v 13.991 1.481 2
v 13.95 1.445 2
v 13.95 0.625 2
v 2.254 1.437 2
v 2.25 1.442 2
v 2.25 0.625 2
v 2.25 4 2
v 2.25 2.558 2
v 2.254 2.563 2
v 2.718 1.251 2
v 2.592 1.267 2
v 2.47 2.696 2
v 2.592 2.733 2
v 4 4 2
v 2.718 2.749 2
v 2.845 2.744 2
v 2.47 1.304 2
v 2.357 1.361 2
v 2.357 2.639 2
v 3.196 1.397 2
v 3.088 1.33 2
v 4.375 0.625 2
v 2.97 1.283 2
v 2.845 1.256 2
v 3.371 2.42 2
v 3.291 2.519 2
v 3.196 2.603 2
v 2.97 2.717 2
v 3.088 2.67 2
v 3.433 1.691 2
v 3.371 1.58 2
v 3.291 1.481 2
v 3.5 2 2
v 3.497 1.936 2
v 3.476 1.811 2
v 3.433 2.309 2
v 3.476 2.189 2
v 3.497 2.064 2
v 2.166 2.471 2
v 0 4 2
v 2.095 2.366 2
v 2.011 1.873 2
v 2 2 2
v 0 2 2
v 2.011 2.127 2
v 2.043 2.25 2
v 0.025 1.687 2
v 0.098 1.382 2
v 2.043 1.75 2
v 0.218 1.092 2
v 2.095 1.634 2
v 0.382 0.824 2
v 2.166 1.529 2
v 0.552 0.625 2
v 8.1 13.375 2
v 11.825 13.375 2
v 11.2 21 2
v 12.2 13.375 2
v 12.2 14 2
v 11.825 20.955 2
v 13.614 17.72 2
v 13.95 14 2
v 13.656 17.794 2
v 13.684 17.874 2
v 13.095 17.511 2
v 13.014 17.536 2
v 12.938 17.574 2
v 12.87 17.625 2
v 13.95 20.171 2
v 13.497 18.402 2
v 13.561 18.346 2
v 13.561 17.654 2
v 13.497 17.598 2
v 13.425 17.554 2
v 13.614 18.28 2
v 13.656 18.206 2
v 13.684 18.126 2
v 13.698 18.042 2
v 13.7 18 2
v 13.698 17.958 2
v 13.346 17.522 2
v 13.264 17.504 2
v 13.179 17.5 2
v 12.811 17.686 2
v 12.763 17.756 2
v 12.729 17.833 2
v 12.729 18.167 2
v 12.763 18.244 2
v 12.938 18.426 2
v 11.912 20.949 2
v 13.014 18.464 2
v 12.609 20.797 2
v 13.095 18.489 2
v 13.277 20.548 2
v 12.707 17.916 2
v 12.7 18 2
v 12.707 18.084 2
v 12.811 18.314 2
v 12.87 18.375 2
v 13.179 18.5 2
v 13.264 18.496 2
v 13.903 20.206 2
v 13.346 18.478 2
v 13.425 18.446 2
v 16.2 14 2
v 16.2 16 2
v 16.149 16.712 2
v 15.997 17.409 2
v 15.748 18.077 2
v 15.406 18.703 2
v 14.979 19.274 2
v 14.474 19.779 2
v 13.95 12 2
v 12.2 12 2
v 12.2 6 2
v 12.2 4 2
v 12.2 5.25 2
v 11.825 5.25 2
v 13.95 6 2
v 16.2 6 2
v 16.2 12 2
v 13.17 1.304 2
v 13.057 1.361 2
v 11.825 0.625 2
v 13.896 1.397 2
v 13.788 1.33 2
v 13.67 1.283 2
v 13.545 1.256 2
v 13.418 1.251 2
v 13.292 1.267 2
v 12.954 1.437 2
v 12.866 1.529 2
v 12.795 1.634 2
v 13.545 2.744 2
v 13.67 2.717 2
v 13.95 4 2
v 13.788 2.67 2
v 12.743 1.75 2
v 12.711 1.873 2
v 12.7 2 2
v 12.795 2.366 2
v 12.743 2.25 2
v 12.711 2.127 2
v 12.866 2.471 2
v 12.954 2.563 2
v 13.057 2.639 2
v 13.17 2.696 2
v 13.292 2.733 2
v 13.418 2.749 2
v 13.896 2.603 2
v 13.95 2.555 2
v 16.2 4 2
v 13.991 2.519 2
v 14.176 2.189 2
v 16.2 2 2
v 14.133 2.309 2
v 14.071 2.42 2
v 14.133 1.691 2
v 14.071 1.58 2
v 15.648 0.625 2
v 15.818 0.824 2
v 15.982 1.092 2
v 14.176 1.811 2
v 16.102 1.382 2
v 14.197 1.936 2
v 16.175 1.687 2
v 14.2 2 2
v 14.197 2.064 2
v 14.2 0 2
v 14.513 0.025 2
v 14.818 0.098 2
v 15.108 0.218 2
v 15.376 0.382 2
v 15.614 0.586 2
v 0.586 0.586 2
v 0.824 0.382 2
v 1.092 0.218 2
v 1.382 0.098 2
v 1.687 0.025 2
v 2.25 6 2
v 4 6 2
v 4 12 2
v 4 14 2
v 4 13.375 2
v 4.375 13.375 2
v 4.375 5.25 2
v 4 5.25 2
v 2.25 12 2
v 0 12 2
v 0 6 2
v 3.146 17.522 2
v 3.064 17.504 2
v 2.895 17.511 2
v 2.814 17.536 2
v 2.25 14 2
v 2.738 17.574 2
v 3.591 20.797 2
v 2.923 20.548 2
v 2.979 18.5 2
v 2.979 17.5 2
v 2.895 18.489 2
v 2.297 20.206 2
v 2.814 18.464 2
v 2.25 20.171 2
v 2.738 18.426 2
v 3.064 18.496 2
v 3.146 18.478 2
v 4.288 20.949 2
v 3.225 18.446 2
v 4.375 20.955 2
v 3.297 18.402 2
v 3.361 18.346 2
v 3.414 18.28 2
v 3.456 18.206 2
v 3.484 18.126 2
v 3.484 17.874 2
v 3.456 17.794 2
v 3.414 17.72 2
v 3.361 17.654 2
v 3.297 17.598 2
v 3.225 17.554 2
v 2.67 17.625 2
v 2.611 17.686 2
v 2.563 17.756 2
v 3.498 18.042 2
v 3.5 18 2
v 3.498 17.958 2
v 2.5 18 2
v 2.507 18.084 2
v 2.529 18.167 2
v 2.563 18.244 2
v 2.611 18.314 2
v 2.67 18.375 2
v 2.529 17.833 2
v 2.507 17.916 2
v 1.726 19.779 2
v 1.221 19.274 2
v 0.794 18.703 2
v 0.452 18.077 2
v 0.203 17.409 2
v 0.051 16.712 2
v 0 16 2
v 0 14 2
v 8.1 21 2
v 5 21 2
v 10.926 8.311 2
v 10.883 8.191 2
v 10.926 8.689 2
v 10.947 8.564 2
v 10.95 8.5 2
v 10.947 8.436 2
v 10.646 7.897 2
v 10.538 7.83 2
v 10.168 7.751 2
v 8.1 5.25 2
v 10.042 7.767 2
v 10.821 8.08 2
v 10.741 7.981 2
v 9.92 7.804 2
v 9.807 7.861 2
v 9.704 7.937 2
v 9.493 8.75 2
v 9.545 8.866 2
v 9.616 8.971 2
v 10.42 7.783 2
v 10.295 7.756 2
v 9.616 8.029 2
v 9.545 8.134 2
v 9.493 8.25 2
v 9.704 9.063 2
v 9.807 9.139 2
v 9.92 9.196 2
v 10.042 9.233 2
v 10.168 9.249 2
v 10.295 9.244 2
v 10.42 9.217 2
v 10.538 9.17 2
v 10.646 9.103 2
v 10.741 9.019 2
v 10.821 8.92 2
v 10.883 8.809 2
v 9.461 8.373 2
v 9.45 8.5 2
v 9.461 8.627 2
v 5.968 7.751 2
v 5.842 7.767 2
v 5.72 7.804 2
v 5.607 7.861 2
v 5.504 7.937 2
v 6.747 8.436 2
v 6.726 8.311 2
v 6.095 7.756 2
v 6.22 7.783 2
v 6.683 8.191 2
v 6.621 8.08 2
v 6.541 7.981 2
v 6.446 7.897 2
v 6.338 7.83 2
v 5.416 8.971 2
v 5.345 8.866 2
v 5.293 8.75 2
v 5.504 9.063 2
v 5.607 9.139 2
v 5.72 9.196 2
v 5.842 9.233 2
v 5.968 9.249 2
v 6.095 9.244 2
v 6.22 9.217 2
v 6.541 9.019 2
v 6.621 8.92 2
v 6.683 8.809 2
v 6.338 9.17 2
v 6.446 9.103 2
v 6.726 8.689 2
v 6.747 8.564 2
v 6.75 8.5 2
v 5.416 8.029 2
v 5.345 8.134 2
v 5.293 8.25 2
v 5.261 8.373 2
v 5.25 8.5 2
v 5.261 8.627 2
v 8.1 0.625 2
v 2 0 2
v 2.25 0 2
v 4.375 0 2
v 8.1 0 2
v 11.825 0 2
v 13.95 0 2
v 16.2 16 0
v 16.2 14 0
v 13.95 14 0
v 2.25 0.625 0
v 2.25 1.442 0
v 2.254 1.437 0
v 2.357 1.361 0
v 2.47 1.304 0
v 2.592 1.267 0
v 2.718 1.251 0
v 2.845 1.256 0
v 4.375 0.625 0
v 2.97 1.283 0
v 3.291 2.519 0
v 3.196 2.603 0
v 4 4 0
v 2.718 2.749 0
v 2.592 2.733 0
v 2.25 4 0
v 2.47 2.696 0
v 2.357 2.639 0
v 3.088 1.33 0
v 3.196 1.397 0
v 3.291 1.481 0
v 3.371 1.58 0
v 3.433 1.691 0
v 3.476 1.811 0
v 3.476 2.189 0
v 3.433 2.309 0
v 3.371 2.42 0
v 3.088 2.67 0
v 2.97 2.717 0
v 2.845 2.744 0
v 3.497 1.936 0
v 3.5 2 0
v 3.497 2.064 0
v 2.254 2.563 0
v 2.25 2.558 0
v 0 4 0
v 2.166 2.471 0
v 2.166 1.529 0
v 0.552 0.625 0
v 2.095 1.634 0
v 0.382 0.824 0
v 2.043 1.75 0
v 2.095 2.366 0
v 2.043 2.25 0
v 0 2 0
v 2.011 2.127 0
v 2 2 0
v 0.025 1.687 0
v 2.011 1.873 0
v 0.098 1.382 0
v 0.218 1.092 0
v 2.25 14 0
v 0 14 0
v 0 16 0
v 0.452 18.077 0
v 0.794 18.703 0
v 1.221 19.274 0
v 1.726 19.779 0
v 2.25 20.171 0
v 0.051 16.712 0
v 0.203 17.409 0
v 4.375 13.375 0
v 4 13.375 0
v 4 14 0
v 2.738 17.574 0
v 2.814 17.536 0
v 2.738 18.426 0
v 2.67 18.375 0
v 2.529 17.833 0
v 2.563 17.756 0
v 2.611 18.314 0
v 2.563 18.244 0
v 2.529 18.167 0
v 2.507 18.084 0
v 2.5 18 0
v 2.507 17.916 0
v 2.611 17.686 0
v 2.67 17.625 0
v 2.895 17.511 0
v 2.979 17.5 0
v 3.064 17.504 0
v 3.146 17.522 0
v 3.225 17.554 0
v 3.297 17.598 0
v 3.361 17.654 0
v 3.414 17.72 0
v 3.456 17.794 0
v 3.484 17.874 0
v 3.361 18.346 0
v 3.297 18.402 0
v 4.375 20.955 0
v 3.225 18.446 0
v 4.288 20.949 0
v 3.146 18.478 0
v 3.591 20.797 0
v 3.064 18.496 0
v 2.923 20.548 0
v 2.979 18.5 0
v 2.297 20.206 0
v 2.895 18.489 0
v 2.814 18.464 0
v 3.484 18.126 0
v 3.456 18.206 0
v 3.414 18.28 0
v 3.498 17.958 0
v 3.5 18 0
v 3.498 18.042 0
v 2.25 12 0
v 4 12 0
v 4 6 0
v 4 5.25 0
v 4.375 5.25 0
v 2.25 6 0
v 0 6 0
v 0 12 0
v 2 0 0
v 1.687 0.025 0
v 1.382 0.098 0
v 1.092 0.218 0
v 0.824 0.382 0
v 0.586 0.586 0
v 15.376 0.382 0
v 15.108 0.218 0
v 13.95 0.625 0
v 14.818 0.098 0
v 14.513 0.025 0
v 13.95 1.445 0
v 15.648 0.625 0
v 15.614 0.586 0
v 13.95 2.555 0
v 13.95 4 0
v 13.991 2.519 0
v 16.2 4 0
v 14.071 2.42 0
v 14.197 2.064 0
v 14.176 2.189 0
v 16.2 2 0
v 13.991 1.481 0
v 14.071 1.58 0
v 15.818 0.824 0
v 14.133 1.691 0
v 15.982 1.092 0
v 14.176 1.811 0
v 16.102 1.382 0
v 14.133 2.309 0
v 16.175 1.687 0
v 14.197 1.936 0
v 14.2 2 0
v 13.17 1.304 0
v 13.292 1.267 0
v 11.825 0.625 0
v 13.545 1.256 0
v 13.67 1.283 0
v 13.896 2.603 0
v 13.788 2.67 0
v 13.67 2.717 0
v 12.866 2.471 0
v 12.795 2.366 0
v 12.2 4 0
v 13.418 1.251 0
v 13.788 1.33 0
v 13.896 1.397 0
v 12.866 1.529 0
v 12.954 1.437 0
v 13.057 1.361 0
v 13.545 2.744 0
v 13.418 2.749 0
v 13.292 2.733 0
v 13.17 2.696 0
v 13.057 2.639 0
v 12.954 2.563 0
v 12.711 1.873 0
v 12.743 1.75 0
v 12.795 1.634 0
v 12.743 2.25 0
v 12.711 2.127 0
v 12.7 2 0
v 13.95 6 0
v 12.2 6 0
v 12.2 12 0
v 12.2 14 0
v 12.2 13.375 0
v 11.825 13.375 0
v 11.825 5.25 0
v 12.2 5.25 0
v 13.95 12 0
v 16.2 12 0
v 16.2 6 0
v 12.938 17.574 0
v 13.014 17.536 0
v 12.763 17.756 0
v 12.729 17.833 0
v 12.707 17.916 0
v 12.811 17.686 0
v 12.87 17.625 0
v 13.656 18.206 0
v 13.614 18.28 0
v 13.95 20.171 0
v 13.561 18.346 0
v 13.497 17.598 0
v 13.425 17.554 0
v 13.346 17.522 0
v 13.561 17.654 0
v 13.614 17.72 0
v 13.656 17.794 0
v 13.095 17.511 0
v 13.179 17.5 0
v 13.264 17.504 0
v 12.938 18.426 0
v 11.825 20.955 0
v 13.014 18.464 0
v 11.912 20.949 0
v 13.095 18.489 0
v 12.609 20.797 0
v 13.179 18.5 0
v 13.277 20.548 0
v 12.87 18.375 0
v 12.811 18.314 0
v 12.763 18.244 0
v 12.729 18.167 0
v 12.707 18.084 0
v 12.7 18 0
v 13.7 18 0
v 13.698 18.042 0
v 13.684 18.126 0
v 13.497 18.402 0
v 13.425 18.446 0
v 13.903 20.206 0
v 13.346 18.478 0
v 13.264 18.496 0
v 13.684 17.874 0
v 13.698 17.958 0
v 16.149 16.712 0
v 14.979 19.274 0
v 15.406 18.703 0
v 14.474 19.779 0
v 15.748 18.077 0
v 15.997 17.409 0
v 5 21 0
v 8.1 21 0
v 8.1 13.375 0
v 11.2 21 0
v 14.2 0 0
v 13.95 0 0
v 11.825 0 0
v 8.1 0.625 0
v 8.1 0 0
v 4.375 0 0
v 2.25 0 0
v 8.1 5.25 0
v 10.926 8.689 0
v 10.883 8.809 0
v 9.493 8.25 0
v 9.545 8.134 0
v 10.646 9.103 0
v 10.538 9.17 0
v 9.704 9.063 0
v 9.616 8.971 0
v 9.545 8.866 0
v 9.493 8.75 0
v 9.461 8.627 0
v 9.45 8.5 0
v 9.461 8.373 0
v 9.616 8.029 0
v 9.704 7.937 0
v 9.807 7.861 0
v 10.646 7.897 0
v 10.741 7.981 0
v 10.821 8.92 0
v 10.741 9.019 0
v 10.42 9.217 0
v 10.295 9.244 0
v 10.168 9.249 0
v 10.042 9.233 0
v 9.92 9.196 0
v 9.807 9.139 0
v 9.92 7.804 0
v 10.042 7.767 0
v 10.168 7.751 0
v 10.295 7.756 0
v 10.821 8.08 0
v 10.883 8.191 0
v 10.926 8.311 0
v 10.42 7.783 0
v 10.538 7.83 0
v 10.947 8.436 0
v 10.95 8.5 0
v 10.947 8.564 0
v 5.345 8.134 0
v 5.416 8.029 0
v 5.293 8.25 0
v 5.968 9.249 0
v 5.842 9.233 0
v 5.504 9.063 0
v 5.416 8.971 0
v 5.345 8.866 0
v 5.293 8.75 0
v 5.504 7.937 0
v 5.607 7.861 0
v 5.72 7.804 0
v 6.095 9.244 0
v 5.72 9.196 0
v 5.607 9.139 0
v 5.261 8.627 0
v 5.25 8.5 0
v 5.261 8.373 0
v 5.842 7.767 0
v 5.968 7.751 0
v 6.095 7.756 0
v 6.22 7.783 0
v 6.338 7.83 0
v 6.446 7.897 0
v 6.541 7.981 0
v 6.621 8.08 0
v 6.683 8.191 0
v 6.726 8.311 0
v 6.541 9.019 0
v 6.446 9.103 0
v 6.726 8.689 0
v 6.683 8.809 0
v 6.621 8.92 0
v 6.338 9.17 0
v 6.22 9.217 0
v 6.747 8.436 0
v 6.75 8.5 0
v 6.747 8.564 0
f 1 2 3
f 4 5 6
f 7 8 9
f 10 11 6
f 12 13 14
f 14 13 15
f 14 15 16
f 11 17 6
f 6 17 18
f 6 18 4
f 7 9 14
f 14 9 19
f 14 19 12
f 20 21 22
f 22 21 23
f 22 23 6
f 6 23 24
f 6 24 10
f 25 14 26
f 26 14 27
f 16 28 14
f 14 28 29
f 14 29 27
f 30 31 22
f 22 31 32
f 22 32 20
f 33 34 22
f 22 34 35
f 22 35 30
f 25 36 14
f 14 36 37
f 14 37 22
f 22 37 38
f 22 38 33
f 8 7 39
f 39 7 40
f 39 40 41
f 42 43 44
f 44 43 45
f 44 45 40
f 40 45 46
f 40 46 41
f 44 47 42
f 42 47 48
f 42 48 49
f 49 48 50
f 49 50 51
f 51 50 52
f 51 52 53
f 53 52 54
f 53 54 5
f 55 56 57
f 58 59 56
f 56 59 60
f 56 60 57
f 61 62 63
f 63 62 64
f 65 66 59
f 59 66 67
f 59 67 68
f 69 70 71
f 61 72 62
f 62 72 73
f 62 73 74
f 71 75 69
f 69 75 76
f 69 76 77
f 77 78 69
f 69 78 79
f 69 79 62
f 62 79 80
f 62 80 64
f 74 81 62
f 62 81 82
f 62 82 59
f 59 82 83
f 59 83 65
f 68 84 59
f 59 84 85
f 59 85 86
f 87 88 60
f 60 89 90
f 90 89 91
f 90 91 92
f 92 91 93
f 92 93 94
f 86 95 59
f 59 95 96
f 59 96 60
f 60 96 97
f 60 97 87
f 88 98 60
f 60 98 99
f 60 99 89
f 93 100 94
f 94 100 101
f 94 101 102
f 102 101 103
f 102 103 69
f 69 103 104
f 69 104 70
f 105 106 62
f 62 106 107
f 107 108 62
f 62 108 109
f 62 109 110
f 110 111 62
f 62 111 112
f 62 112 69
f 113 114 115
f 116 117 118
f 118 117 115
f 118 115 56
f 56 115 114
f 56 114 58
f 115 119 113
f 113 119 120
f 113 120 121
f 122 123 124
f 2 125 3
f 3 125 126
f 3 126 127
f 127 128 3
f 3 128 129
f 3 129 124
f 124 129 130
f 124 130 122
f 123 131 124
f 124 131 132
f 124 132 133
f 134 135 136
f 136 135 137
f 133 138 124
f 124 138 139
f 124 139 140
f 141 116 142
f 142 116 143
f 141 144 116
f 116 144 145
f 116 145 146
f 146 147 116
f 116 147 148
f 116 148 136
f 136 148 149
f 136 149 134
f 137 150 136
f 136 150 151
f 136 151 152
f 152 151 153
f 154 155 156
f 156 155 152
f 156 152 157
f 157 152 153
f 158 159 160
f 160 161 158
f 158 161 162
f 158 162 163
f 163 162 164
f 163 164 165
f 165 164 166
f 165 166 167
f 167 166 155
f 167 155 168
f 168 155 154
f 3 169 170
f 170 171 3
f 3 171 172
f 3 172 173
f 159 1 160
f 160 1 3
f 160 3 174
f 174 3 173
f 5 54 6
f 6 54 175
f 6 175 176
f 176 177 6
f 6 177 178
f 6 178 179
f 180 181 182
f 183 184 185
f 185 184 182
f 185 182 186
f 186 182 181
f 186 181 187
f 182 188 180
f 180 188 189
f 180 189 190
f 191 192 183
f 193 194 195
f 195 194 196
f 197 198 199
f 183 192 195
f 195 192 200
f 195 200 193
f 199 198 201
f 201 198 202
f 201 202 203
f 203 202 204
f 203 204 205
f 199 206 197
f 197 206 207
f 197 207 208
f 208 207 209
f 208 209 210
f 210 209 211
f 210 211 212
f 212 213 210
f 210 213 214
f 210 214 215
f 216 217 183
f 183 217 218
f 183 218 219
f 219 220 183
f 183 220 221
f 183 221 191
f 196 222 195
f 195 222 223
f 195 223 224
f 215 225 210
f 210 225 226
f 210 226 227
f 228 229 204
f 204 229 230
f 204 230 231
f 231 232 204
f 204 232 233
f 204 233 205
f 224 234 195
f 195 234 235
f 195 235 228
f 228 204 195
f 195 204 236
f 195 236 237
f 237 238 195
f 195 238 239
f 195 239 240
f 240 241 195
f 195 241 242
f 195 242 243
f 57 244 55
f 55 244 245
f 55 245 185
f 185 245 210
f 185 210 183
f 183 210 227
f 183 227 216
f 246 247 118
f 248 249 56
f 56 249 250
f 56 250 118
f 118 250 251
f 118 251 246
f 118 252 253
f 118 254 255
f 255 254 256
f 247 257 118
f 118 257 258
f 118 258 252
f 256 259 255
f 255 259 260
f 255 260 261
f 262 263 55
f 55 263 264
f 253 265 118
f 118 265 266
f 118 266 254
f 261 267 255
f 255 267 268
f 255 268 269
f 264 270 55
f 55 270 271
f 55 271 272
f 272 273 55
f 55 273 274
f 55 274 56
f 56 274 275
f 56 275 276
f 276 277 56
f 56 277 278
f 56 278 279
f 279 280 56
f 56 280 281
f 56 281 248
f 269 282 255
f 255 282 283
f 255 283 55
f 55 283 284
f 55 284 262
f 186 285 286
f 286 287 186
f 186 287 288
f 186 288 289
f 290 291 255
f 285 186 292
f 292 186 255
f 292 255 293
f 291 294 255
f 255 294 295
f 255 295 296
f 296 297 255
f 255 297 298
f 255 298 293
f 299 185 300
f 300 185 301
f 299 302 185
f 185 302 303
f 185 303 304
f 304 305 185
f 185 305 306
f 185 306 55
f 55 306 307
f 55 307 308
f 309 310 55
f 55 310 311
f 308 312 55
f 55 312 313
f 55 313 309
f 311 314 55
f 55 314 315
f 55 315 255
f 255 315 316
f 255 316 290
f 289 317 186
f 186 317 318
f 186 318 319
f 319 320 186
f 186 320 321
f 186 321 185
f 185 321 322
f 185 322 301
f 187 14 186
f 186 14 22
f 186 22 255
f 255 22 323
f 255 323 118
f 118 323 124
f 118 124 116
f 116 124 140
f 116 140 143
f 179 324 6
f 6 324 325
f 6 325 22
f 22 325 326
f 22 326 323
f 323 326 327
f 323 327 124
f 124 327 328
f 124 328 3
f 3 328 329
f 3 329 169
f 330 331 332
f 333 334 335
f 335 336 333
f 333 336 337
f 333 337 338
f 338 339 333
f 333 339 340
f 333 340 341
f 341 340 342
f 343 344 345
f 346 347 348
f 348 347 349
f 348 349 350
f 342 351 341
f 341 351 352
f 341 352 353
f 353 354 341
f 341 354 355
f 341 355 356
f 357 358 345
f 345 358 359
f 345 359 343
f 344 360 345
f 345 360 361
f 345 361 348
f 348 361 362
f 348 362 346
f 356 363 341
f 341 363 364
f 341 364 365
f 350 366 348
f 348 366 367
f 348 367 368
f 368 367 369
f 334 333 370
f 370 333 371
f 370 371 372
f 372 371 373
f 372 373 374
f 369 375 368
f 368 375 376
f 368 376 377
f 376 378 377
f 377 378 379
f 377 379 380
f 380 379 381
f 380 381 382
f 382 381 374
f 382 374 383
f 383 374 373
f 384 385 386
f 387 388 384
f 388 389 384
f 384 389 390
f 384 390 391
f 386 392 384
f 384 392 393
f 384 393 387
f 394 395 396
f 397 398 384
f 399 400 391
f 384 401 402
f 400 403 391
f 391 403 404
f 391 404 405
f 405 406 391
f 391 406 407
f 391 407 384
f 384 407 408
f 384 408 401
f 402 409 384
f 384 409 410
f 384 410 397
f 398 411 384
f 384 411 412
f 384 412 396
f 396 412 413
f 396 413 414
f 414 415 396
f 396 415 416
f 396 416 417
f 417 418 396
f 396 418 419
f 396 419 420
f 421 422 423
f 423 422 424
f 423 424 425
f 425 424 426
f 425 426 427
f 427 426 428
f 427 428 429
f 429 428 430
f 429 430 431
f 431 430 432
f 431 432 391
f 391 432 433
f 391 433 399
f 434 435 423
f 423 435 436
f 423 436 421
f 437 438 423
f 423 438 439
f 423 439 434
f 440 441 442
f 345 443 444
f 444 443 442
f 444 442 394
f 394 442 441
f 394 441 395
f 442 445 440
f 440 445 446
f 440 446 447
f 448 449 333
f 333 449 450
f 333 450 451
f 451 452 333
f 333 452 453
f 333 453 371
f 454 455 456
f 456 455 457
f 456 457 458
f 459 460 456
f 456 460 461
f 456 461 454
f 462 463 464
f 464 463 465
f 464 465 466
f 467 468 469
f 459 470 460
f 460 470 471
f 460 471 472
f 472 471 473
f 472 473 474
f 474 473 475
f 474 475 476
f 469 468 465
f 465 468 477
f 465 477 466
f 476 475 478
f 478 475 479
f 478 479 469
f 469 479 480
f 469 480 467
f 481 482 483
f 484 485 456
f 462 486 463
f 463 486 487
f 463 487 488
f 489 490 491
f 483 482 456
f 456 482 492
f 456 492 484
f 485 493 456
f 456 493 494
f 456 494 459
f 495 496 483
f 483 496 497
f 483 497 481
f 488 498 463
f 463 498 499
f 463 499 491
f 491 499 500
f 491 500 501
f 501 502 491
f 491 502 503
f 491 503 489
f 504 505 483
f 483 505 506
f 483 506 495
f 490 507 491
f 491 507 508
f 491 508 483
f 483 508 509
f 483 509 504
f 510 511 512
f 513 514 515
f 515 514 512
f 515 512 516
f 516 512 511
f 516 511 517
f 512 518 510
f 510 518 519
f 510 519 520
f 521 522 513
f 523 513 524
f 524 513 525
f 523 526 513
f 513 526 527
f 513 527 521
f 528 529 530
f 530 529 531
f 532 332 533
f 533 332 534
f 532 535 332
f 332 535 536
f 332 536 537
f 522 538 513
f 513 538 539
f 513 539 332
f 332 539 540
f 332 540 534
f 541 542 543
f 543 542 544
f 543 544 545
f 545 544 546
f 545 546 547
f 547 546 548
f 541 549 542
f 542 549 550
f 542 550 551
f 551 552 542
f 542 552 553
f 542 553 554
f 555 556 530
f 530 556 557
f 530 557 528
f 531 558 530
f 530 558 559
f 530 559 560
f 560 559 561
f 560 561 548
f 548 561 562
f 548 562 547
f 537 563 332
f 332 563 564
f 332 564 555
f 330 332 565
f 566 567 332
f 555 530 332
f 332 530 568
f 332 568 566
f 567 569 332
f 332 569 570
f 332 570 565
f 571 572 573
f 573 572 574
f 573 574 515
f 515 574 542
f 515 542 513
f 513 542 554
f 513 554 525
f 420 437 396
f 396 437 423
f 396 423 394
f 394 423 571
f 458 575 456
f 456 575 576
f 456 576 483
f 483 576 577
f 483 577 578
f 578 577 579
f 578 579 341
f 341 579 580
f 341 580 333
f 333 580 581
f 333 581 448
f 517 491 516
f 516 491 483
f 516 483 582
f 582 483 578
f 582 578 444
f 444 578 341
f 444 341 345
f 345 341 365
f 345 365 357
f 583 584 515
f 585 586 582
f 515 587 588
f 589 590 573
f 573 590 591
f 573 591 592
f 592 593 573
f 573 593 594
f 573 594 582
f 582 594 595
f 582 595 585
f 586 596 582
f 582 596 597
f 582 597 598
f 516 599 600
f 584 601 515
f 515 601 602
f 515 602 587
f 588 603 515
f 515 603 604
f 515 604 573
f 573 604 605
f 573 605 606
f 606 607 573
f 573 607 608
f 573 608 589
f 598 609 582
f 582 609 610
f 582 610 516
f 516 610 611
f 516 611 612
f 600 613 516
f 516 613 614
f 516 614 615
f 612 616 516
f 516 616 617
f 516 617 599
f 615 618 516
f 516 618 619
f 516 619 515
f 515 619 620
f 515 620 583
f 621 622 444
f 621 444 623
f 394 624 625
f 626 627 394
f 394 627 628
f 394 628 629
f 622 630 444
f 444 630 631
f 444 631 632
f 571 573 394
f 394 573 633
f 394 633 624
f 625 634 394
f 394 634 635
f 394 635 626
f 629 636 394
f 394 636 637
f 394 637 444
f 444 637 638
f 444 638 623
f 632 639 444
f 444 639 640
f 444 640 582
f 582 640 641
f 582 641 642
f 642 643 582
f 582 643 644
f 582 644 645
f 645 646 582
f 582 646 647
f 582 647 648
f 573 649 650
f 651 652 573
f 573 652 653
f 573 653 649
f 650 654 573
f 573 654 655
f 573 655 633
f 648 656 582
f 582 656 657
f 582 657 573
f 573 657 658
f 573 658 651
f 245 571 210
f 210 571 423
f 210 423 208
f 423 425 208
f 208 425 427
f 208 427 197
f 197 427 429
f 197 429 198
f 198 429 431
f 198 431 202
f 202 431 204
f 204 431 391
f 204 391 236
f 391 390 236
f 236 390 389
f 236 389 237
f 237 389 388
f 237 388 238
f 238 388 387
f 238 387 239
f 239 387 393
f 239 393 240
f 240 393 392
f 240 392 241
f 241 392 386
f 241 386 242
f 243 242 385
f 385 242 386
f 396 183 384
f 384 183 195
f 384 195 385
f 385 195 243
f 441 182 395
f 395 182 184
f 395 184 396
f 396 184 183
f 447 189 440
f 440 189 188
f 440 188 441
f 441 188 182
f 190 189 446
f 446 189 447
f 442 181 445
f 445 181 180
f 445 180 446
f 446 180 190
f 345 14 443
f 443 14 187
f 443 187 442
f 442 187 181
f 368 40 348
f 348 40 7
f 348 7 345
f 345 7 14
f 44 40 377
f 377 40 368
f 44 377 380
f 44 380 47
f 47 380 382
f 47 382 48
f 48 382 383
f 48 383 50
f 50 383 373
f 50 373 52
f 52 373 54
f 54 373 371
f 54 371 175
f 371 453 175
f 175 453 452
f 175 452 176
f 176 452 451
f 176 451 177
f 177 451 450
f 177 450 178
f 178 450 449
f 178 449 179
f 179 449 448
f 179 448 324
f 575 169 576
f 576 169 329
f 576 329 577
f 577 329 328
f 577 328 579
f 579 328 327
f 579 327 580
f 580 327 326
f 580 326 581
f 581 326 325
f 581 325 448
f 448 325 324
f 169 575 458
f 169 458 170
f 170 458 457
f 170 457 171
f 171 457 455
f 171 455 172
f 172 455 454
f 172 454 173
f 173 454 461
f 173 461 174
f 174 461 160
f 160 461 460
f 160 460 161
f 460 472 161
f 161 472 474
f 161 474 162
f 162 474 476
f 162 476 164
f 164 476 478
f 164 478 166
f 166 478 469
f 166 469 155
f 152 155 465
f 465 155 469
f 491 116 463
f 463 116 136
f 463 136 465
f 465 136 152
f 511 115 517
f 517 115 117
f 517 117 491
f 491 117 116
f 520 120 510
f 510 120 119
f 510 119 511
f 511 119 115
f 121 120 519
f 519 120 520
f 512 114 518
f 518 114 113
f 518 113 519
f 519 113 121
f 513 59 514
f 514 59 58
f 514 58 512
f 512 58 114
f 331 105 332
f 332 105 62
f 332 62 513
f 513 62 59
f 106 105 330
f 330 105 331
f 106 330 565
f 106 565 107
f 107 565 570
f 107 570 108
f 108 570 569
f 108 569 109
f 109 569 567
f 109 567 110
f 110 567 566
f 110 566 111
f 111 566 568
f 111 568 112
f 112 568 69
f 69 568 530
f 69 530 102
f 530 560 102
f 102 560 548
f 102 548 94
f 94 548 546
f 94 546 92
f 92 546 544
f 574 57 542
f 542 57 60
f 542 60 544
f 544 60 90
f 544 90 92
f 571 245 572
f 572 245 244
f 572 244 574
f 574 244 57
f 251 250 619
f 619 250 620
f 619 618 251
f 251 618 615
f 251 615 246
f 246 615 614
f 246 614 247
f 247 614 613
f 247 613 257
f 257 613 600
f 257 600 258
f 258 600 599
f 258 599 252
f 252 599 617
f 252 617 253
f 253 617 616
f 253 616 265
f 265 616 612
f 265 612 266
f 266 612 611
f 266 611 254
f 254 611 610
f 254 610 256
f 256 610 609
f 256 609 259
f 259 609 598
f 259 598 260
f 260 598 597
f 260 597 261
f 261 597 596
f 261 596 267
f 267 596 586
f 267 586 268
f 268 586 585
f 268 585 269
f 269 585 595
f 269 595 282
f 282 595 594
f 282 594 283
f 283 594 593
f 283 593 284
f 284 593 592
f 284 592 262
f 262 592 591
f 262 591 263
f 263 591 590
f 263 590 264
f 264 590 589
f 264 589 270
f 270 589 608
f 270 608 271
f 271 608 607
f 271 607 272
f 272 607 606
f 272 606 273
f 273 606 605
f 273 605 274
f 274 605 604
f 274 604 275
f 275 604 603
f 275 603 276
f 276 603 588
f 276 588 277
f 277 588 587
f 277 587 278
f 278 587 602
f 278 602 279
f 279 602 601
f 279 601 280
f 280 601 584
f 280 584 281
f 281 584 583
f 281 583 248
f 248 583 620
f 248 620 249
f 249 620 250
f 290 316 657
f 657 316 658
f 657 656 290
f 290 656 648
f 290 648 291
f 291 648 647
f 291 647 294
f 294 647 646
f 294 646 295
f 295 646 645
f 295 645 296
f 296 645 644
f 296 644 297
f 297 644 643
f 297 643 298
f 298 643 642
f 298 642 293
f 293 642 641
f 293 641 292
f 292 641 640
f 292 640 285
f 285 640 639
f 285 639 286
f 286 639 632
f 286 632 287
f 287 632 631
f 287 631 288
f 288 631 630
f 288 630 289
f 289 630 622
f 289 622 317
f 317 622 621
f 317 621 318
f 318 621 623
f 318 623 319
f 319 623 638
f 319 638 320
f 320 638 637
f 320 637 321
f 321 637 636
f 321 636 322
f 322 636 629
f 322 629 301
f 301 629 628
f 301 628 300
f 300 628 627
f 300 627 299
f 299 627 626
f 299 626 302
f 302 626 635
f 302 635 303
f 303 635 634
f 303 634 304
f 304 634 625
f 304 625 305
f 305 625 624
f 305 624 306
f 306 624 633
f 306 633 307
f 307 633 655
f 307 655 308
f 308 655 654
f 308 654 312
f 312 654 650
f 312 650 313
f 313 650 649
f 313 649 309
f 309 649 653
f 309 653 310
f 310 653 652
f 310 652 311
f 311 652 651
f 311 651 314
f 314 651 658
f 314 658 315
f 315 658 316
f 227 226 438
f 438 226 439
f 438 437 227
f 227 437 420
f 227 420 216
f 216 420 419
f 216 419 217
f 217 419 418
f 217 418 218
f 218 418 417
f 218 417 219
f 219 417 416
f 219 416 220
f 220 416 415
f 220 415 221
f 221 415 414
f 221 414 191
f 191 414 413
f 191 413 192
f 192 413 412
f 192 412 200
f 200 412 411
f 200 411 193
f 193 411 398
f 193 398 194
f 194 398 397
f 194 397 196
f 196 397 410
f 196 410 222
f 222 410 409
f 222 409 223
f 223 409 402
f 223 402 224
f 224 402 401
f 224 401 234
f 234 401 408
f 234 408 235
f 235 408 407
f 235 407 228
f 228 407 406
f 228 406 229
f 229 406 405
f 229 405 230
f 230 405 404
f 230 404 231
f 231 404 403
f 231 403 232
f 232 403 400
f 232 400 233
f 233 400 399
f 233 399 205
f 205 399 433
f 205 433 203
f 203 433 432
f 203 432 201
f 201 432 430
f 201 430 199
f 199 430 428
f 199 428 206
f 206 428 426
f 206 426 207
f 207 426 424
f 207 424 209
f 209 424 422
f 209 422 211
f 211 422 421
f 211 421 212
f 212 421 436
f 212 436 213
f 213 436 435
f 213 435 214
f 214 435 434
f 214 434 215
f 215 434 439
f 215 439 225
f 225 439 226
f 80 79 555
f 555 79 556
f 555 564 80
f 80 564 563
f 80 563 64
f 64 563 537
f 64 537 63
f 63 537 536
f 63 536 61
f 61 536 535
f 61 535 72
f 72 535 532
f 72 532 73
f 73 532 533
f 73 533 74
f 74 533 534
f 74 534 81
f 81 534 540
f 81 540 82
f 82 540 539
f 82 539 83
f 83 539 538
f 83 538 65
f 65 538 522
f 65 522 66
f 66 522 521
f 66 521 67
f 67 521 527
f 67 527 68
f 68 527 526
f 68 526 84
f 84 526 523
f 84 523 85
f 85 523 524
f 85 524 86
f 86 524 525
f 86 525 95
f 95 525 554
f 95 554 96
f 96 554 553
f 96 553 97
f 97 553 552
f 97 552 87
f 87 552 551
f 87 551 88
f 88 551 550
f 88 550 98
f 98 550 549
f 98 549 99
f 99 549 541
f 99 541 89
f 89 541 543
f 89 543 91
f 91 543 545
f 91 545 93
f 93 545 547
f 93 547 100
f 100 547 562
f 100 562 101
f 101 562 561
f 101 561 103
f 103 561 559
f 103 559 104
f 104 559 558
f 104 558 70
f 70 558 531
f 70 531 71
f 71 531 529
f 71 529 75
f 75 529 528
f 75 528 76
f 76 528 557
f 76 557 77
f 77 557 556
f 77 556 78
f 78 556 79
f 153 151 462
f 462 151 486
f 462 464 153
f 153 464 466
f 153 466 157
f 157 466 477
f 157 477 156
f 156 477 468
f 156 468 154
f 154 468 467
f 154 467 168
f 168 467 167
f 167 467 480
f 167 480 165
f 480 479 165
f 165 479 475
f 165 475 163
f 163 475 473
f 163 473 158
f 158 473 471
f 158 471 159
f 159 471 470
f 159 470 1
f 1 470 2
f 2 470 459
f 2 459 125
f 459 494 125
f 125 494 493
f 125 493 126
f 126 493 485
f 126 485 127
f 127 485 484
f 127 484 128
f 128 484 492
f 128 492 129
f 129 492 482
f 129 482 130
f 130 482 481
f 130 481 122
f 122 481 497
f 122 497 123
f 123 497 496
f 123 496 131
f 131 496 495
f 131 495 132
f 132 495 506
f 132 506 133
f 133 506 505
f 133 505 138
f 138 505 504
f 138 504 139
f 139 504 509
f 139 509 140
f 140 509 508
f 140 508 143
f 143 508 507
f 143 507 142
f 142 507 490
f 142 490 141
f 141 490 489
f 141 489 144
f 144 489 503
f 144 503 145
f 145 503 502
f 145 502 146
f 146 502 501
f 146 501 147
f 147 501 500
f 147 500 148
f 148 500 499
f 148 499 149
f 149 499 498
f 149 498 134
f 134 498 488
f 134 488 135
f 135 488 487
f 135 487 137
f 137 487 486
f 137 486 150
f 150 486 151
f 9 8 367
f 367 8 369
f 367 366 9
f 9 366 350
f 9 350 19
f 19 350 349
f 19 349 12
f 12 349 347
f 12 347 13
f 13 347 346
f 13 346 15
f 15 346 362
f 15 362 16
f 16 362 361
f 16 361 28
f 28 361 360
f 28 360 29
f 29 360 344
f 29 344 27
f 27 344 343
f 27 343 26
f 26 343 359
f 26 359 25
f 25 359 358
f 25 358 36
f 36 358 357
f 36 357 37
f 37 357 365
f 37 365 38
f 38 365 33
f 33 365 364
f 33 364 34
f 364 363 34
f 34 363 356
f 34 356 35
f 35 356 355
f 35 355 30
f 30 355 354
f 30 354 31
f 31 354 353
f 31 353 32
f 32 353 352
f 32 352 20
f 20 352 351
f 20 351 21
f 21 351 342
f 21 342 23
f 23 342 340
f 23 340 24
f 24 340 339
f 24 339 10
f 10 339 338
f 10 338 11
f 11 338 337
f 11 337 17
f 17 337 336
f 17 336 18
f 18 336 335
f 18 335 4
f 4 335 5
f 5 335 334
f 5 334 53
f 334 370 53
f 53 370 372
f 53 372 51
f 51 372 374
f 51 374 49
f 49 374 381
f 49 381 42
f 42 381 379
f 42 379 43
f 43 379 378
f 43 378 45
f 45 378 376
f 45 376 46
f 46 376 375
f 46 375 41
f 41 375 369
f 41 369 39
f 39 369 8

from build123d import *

# Parameters (mm, degrees)
SKETCH1_R           = 0.75
SKETCH1_R_2         = 0.5
BOSS_EXTRUDE1_DEPTH = 2


with BuildPart() as part:
    # Sketch1 → Boss-Extrude1 (new body)
    with BuildSketch(Plane.XY):
        with BuildLine():
            Line((0, 16), (0, 14))
            Line((0, 14), (4, 14))
            Line((4, 14), (4, 12))
            Line((4, 12), (0, 12))
            Line((0, 12), (0, 6))
            Line((0, 6), (4, 6))
            Line((4, 6), (4, 4))
            Line((4, 4), (0, 4))
            Line((0, 4), (0, 2))
            ThreePointArc((0, 2), (0.585786438, 0.585786438), (2, 0))
            Line((2, 0), (14.2, 0))
            ThreePointArc((14.2, 0), (15.614213562, 0.585786438), (16.2, 2))
            Line((16.2, 2), (16.2, 4))
            Line((16.2, 4), (12.2, 4))
            Line((12.2, 4), (12.2, 6))
            Line((12.2, 6), (16.2, 6))
            Line((16.2, 6), (16.2, 12))
            Line((16.2, 12), (12.2, 12))
            Line((12.2, 12), (12.2, 14))
            Line((12.2, 14), (16.2, 14))
            Line((16.2, 14), (16.2, 16))
            ThreePointArc((16.2, 16), (14.735533906, 19.535533906), (11.2, 21))
            Line((11.2, 21), (5, 21))
            ThreePointArc((5, 21), (1.464466094, 19.535533906), (0, 16))
        make_face()
        with Locations((10.2, 8.5)):
            Circle(SKETCH1_R, mode=Mode.SUBTRACT)
        with Locations((6, 8.5)):
            Circle(SKETCH1_R, mode=Mode.SUBTRACT)
        with Locations((3, 18)):
            Circle(SKETCH1_R_2, mode=Mode.SUBTRACT)
        with Locations((13.2, 18)):
            Circle(SKETCH1_R_2, mode=Mode.SUBTRACT)
        with Locations((13.45, 2)):
            Circle(SKETCH1_R, mode=Mode.SUBTRACT)
        with Locations((2.75, 2)):
            Circle(SKETCH1_R, mode=Mode.SUBTRACT)
    extrude(amount=BOSS_EXTRUDE1_DEPTH)


solid = part.part
